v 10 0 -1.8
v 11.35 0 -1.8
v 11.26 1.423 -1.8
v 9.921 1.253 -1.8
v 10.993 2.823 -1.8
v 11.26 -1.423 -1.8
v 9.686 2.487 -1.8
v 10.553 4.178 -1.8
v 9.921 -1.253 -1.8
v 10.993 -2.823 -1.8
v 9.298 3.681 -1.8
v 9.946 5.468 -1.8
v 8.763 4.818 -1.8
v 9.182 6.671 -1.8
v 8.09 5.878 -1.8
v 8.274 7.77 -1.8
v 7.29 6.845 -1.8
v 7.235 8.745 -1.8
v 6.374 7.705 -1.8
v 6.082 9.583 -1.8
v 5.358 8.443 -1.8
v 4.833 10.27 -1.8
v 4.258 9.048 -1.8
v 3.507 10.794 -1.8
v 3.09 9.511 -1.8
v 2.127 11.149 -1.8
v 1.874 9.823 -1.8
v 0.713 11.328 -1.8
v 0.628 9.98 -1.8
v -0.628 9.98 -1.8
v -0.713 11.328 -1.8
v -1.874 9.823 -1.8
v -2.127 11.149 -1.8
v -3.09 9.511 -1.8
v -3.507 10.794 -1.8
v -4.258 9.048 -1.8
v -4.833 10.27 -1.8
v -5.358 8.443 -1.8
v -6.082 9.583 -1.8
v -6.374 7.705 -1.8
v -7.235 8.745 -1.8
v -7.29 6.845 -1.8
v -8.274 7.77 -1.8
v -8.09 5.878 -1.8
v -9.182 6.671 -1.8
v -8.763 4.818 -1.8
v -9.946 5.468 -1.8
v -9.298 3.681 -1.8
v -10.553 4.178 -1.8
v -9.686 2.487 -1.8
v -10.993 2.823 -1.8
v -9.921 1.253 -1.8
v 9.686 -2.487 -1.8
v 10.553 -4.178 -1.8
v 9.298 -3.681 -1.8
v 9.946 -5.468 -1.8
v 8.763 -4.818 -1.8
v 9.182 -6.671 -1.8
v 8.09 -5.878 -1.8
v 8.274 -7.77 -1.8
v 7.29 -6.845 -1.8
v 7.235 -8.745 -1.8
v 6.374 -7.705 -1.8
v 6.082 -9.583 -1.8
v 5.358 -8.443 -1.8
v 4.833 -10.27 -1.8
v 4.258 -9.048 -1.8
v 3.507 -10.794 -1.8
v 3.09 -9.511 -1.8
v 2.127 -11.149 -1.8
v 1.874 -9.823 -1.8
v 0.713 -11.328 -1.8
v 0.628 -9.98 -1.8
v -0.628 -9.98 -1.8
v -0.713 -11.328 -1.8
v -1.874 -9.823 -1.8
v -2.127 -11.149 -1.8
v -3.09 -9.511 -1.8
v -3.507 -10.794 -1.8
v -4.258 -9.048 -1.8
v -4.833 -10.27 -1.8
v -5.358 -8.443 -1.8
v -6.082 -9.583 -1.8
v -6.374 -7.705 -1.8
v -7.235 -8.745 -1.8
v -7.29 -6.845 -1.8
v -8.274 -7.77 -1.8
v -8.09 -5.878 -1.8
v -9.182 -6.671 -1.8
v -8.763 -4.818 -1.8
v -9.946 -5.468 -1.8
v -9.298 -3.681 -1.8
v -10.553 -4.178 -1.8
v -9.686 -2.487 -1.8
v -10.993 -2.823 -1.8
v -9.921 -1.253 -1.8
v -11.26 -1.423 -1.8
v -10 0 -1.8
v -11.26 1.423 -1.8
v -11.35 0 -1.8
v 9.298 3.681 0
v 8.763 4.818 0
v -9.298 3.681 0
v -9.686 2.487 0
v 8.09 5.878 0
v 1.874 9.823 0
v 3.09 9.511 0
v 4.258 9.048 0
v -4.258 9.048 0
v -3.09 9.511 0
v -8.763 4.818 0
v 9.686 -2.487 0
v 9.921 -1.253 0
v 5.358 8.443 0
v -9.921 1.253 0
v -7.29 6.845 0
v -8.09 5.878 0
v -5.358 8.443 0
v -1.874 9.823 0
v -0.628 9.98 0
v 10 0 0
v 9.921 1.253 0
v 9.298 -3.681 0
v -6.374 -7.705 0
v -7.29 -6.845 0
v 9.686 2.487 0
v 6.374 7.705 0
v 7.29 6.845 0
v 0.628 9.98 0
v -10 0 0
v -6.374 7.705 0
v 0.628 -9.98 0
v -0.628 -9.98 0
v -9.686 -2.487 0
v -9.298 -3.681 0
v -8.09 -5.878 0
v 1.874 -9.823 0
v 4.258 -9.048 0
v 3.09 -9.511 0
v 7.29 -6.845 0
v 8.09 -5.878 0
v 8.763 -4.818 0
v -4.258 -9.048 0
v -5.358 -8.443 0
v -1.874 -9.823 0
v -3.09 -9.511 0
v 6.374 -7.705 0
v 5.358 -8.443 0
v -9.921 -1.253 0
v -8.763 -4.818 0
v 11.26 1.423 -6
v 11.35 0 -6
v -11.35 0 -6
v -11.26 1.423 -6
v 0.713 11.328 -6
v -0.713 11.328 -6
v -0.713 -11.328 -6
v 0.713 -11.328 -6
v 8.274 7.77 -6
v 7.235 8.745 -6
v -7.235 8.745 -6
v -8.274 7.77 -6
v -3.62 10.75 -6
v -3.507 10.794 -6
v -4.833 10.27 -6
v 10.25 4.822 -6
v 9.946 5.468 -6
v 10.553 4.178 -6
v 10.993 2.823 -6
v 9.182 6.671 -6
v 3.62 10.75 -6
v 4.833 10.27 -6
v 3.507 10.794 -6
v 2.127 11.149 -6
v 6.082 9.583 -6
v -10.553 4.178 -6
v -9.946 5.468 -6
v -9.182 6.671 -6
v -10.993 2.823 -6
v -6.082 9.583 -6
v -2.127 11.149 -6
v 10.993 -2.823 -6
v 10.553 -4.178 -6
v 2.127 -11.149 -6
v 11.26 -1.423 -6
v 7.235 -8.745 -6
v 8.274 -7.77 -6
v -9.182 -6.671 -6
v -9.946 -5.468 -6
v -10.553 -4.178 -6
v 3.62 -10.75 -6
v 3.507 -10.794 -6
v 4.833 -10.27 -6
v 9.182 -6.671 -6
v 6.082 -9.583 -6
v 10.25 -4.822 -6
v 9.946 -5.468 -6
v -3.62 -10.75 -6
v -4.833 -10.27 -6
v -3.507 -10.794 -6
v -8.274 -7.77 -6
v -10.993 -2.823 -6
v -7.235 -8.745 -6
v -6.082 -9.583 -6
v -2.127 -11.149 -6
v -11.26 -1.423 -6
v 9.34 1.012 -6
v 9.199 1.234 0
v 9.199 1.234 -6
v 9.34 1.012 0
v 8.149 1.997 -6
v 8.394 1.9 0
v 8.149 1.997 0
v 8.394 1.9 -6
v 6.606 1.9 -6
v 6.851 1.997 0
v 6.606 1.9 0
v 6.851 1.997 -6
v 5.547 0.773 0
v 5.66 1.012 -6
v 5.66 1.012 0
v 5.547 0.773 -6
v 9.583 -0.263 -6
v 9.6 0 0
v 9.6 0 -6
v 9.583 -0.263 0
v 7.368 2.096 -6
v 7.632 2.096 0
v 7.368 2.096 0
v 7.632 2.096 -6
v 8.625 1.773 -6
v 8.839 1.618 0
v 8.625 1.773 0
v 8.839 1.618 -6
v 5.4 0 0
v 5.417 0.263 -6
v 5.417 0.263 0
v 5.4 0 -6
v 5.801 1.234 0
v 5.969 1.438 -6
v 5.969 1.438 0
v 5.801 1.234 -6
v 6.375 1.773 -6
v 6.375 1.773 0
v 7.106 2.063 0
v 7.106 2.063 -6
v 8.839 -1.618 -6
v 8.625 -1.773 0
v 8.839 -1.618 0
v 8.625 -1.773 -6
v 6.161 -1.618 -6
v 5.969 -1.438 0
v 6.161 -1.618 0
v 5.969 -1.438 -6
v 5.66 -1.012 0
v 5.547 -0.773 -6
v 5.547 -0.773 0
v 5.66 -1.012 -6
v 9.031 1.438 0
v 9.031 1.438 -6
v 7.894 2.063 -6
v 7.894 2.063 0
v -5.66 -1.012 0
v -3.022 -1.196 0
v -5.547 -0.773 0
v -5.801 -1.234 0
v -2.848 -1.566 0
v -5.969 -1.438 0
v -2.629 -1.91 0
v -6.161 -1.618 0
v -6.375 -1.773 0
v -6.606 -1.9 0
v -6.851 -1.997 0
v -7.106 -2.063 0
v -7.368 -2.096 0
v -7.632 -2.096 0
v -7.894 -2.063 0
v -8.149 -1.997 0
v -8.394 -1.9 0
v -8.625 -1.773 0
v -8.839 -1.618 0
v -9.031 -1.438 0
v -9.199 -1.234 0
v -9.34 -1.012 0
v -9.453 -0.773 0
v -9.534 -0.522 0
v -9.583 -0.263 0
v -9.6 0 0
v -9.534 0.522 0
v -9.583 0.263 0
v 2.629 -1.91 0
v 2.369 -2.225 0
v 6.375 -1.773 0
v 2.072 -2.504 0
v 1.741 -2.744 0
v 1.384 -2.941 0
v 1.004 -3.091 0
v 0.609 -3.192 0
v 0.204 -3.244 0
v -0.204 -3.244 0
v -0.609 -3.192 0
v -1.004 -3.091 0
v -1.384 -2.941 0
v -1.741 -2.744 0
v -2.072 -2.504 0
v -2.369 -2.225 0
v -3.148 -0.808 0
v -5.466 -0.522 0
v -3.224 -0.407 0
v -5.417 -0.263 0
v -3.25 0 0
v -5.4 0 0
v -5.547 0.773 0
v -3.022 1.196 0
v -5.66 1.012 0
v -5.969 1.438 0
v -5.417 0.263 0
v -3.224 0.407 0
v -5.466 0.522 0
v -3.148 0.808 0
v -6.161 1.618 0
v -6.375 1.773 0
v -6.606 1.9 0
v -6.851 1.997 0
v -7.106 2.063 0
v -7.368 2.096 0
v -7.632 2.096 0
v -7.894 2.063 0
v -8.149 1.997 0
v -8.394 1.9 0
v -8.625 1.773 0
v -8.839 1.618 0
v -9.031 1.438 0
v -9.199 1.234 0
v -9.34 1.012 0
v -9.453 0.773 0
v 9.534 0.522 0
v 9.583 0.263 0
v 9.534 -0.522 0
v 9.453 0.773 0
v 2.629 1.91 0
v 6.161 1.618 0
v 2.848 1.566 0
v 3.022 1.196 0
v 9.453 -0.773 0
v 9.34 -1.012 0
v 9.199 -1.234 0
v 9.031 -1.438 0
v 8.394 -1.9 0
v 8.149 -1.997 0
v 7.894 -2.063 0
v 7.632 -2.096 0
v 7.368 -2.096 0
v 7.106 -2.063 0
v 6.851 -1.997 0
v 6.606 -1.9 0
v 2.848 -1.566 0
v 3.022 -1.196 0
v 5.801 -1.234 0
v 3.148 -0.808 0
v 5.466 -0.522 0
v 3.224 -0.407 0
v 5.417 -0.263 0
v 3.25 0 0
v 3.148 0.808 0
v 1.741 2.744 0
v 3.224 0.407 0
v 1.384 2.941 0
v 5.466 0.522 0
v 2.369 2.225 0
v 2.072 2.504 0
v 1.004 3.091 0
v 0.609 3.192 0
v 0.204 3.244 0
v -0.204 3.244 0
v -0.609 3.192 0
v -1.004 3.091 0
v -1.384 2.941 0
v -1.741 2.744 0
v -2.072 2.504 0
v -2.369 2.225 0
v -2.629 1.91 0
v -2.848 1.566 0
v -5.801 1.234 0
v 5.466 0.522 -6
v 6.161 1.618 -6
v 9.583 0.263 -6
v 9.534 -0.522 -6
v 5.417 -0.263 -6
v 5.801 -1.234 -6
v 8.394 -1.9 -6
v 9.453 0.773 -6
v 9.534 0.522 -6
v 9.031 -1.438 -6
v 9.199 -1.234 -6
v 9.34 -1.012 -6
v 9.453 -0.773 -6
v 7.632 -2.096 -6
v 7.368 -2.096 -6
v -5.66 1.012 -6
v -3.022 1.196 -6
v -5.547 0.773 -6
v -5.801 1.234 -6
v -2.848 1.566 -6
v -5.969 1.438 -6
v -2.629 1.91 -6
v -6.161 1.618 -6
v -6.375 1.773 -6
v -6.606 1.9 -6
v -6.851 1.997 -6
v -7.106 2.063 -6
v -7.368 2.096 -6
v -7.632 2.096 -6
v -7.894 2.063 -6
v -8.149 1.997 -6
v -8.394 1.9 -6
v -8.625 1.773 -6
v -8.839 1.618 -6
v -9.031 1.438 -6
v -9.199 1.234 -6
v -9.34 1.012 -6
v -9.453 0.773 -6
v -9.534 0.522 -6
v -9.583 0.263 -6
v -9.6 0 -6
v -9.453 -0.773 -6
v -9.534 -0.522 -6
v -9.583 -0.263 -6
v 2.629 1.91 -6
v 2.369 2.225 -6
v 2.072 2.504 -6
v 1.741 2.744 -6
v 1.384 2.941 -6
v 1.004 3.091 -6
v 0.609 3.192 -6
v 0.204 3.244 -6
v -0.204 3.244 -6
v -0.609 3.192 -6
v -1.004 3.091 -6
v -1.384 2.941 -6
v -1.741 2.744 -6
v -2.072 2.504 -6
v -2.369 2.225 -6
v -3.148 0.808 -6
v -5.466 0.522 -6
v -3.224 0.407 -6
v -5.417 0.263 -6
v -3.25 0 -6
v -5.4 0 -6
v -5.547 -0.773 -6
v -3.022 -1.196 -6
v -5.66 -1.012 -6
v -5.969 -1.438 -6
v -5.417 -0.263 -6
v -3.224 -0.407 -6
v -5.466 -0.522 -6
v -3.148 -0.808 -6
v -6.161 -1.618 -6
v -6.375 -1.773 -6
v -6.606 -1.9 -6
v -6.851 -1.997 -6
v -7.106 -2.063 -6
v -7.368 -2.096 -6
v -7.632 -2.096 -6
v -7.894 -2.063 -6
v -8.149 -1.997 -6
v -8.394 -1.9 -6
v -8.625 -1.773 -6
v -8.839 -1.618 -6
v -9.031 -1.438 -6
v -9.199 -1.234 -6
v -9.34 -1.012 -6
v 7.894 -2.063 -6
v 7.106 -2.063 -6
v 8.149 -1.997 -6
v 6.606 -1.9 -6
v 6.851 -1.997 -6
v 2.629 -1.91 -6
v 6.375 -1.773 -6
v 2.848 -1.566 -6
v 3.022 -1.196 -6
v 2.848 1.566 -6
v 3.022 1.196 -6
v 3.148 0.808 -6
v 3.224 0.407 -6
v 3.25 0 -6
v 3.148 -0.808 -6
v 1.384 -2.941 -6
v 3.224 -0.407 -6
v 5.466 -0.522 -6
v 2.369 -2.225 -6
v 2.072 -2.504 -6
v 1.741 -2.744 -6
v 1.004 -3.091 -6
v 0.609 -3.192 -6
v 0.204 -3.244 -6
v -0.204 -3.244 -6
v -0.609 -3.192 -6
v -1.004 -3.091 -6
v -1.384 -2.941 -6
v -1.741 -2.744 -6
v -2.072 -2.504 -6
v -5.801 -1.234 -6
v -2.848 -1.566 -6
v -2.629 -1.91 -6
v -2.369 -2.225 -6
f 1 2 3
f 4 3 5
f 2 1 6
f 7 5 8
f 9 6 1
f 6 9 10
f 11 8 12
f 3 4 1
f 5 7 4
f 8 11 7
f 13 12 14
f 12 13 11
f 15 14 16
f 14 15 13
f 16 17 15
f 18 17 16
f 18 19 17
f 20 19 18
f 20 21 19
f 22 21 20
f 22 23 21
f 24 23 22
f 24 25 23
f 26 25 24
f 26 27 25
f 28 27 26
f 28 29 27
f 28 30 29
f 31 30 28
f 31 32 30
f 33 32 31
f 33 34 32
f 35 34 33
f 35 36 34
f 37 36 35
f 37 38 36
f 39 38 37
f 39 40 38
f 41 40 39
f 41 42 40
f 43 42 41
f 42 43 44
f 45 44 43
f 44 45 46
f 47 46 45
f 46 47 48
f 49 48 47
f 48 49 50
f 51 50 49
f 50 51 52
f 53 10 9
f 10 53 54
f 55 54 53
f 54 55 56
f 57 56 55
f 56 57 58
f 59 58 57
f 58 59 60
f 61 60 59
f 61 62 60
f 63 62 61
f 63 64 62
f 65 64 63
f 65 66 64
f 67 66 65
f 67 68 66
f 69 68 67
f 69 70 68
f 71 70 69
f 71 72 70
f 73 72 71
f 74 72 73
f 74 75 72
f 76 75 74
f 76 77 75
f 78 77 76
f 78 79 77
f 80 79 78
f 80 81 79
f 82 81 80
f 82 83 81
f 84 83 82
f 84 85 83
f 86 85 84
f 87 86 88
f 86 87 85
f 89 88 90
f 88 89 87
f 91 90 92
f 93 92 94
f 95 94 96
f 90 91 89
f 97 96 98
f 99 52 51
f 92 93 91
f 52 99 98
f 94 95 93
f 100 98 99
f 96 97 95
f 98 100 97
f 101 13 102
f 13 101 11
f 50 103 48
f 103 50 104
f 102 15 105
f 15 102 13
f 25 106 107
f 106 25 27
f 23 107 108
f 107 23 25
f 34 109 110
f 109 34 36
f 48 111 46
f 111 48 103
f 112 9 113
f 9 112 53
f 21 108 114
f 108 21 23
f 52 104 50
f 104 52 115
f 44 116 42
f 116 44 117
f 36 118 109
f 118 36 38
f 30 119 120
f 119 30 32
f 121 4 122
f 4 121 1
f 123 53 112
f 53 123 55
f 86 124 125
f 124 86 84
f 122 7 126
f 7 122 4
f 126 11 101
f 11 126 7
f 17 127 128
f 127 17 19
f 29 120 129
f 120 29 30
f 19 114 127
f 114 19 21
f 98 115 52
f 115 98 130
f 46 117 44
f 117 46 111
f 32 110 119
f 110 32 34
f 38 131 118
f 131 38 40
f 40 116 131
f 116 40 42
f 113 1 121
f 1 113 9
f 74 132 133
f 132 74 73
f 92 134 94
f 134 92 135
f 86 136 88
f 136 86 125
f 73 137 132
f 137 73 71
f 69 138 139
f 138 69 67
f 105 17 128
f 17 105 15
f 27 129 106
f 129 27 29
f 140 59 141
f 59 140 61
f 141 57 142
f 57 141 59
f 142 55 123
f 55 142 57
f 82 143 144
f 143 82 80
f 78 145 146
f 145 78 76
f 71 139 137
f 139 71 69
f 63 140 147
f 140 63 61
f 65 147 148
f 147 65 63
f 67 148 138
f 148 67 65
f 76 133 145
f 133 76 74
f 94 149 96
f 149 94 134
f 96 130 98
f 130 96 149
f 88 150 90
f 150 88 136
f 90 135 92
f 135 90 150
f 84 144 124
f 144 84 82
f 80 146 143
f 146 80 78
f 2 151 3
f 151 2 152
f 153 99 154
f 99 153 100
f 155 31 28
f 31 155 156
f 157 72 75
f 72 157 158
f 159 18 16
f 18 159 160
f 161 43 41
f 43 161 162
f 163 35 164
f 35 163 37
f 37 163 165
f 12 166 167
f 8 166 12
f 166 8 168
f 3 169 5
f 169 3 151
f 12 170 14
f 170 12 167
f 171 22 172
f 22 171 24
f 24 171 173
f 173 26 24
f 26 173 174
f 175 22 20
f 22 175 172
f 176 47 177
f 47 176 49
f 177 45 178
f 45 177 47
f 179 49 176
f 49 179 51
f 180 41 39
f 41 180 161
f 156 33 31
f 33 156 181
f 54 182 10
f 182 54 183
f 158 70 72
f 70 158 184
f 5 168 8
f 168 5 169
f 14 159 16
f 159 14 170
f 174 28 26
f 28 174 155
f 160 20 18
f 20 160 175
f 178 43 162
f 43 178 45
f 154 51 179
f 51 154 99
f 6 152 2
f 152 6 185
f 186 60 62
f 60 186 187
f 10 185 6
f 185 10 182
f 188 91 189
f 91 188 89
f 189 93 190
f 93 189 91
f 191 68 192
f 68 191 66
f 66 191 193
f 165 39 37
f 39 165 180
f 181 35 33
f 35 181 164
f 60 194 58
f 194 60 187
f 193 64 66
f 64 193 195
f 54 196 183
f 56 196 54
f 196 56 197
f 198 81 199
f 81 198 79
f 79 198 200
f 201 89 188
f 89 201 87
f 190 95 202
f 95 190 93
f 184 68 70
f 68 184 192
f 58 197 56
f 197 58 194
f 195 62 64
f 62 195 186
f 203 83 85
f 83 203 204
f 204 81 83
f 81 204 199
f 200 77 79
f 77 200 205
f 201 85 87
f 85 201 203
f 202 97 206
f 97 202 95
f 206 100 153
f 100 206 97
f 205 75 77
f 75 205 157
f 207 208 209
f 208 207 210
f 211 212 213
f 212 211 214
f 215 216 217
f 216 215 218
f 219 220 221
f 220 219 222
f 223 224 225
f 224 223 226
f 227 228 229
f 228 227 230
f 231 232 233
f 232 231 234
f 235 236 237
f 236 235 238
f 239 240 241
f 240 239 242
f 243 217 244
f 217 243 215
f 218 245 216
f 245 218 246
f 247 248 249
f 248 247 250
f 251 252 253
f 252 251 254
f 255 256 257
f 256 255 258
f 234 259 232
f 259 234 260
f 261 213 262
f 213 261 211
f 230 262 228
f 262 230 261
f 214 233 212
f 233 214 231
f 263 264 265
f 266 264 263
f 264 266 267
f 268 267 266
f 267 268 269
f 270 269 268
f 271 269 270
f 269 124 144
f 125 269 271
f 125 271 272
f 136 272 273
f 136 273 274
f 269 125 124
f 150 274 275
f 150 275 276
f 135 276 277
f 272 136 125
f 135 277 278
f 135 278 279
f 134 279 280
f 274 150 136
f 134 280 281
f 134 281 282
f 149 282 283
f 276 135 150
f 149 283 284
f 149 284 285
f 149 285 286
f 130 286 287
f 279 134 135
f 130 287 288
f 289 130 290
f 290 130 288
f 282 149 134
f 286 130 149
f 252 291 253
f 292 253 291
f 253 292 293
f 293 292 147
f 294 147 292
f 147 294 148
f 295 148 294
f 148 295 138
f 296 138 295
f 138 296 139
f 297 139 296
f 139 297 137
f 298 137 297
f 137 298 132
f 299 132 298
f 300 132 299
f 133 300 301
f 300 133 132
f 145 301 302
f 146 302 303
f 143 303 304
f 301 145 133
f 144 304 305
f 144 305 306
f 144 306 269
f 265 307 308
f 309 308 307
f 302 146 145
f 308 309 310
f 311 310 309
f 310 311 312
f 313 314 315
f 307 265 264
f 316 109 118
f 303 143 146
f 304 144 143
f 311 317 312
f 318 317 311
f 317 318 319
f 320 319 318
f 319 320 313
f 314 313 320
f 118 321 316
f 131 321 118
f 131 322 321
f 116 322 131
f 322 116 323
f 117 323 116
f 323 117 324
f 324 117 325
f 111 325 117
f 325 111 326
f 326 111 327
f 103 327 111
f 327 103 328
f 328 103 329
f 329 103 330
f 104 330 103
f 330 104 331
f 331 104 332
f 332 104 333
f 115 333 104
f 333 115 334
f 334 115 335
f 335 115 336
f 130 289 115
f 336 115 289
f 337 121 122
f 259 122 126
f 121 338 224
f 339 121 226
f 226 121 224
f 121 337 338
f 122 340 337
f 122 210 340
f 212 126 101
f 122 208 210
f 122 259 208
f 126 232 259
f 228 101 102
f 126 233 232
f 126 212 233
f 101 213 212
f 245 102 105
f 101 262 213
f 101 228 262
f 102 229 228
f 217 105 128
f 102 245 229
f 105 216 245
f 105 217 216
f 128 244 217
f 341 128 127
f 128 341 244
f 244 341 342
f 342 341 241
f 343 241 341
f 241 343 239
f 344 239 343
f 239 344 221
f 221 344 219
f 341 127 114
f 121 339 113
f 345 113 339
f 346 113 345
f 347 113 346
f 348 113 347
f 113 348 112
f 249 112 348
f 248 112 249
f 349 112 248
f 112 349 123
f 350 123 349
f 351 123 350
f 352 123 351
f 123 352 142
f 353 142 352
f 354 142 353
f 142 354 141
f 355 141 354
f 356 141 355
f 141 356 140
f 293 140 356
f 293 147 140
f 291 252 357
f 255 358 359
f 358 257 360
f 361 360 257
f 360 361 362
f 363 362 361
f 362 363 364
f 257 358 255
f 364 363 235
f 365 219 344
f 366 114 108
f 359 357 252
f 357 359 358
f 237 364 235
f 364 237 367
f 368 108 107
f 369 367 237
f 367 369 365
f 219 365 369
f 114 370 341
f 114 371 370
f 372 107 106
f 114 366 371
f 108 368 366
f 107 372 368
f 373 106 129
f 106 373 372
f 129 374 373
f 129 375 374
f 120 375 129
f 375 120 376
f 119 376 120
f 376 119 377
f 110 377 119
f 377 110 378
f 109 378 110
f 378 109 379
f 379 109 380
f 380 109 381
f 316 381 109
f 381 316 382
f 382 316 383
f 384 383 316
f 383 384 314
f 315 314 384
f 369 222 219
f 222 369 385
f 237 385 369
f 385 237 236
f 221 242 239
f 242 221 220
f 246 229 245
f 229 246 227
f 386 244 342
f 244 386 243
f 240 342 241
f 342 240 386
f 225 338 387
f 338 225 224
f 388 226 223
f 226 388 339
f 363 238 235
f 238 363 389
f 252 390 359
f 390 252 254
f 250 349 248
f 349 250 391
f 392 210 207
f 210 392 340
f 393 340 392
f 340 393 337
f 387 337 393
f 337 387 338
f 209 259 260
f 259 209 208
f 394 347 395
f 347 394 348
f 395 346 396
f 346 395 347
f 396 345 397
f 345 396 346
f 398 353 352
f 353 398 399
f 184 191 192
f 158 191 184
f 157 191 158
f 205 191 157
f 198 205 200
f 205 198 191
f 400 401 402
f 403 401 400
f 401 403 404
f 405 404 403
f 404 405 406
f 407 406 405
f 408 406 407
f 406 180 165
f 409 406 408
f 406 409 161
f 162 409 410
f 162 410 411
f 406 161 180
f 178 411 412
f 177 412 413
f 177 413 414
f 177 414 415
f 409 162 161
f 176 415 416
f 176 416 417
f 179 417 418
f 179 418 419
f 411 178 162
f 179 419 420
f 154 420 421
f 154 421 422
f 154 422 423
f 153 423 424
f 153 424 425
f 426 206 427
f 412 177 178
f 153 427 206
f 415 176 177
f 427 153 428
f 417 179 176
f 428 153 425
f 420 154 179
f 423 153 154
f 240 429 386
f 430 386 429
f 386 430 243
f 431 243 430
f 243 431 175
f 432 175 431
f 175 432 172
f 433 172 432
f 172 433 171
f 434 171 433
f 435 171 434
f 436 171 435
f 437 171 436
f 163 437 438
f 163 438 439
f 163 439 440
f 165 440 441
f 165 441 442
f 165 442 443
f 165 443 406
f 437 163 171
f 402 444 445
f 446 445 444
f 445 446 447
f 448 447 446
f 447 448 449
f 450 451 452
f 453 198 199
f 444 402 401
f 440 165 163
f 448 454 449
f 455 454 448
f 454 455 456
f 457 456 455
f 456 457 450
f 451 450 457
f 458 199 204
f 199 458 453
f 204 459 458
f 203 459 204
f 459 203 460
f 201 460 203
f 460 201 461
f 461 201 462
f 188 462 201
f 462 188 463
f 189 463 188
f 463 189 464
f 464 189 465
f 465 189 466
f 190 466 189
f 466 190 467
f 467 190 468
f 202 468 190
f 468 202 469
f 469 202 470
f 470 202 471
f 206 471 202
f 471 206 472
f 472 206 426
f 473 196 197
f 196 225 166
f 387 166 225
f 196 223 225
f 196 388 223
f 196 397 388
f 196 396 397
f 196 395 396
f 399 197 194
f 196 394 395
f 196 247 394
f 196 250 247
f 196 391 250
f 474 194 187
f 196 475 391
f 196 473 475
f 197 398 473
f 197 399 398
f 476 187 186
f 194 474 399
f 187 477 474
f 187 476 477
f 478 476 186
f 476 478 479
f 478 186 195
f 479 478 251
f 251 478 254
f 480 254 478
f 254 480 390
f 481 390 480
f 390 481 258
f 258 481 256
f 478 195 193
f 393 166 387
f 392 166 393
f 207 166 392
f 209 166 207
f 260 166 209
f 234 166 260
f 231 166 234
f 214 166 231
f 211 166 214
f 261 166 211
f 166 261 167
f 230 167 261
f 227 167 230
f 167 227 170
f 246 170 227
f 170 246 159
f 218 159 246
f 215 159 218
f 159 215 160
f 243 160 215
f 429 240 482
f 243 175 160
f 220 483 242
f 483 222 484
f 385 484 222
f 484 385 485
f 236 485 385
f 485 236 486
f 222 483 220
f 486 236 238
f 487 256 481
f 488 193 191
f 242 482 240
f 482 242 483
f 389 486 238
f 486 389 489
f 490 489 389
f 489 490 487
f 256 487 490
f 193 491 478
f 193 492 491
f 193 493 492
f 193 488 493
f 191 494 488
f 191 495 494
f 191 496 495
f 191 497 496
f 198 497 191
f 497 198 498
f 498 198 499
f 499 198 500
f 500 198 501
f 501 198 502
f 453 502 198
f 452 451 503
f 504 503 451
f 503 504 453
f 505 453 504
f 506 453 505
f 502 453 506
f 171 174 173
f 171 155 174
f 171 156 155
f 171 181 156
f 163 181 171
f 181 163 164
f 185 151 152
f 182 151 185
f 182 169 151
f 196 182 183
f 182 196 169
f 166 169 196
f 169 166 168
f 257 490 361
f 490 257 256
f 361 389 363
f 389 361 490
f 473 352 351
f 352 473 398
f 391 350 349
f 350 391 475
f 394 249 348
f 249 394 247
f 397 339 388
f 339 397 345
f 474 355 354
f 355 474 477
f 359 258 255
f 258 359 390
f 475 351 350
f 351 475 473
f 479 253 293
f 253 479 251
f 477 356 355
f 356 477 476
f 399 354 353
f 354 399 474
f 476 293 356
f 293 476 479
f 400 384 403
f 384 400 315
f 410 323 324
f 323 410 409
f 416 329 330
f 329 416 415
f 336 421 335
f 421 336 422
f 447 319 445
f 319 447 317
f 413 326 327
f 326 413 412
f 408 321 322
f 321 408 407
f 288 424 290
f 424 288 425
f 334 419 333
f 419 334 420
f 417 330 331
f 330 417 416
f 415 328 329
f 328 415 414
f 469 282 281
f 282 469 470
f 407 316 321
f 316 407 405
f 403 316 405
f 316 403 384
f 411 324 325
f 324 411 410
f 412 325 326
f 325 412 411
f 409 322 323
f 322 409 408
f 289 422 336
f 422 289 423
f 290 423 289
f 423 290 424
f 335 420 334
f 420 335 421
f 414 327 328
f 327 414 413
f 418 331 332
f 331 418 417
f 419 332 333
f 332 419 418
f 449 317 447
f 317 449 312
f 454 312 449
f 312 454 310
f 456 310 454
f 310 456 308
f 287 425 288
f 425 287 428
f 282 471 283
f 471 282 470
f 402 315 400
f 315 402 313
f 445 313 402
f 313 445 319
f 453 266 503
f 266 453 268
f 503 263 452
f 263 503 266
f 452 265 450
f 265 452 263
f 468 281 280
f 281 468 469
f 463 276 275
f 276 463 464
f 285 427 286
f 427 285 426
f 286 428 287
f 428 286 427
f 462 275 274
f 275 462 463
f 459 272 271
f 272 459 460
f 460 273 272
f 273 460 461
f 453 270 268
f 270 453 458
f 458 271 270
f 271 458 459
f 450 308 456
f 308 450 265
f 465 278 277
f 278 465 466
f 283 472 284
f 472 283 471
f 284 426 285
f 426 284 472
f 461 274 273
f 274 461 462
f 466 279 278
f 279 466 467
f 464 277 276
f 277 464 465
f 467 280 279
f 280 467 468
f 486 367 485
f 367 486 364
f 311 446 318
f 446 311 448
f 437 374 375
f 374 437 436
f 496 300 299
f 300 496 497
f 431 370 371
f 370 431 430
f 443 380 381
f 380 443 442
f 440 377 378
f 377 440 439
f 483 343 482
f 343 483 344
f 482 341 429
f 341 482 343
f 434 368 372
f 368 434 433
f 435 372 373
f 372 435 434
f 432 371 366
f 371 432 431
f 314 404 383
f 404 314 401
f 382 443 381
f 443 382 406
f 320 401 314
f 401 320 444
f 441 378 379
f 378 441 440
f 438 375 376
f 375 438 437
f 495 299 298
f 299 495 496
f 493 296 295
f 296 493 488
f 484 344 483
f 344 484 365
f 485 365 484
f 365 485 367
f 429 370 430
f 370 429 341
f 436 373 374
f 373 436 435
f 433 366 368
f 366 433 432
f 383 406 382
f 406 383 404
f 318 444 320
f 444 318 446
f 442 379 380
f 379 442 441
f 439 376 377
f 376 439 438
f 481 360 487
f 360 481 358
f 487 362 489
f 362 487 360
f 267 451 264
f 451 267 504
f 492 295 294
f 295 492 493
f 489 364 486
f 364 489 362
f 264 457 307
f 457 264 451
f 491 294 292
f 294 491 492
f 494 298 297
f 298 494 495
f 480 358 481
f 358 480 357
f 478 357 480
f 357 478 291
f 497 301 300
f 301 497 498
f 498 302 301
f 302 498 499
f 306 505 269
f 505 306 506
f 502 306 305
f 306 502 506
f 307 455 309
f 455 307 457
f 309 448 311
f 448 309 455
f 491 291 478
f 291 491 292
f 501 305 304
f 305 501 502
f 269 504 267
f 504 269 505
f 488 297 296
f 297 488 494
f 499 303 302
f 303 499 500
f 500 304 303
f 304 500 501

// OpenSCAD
$fn = 50;


difference() {
	union() {
		translate(v = [0, 0, -6.0000000000]) {
			rotate(a = [0, 0, 0]) {
				cylinder(h = 12, r = 12.0000000000);
			}
		}
	}
	union() {
		translate(v = [0, 0, 0]) {
			rotate(a = [0, 0, 0]) {
				translate(v = [0, 0, -1.8000000000]) {
					union() {
						difference() {
							translate(v = [0, 0, 0]) {
								rotate(a = [0, 0, 0]) {
									cylinder(h = 3.6000000000, r = 13.7000000000);
								}
							}
							translate(v = [0, 0, 0]) {
								rotate(a = [0, 0, 0]) {
									cylinder(h = 3.6000000000, r = 10.0000000000);
								}
							}
						}
						difference() {
							translate(v = [0, 0, -50]) {
								rotate(a = [0, 0, 0]) {
									cylinder(h = 100, r = 12.3500000000);
								}
							}
							translate(v = [0, 0, -50]) {
								rotate(a = [0, 0, 0]) {
									cylinder(h = 100, r = 11.3500000000);
								}
							}
						}
					}
				}
			}
		}
		translate(v = [7.5000000000, 0, -6.0000000000]) {
			rotate(a = [0, 0, 0]) {
				cylinder(h = 6, r = 2.1000000000);
			}
		}
		translate(v = [7.5000000000, 0, -125.0000000000]) {
			rotate(a = [0, 0, 0]) {
				cylinder(h = 250, r = 1.8000000000);
			}
		}
		translate(v = [7.5000000000, 0, -6.0000000000]) {
			rotate(a = [0, 0, 0]) {
				cylinder(h = 6, r = 2.1000000000);
			}
		}
		translate(v = [7.5000000000, 0, -125.0000000000]) {
			rotate(a = [0, 0, 0]) {
				cylinder(h = 250, r = 1.8000000000);
			}
		}
		translate(v = [7.5000000000, 0, -6.0000000000]) {
			rotate(a = [0, 0, 0]) {
				cylinder(h = 6, r = 2.1000000000);
			}
		}
		translate(v = [7.5000000000, 0, -125.0000000000]) {
			rotate(a = [0, 0, 0]) {
				cylinder(h = 250, r = 1.8000000000);
			}
		}
		translate(v = [-7.5000000000, 0, -6.0000000000]) {
			rotate(a = [0, 0, 0]) {
				cylinder(h = 6, r = 2.1000000000);
			}
		}
		translate(v = [-7.5000000000, 0, -125.0000000000]) {
			rotate(a = [0, 0, 0]) {
				cylinder(h = 250, r = 1.8000000000);
			}
		}
		translate(v = [-7.5000000000, 0, -6.0000000000]) {
			rotate(a = [0, 0, 0]) {
				cylinder(h = 6, r = 2.1000000000);
			}
		}
		translate(v = [-7.5000000000, 0, -125.0000000000]) {
			rotate(a = [0, 0, 0]) {
				cylinder(h = 250, r = 1.8000000000);
			}
		}
		translate(v = [-7.5000000000, 0, -6.0000000000]) {
			rotate(a = [0, 0, 0]) {
				cylinder(h = 6, r = 2.1000000000);
			}
		}
		translate(v = [-7.5000000000, 0, -125.0000000000]) {
			rotate(a = [0, 0, 0]) {
				cylinder(h = 250, r = 1.8000000000);
			}
		}
		translate(v = [-15.0000000000, -15.0000000000, -125.0000000000]) {
			rotate(a = [0, 0, 0]) {
				cylinder(h = 250, r = 3.2500000000);
			}
		}
		translate(v = [-15.0000000000, 15.0000000000, -125.0000000000]) {
			rotate(a = [0, 0, 0]) {
				cylinder(h = 250, r = 3.2500000000);
			}
		}
		translate(v = [15.0000000000, -15.0000000000, -125.0000000000]) {
			rotate(a = [0, 0, 0]) {
				cylinder(h = 250, r = 3.2500000000);
			}
		}
		translate(v = [15.0000000000, 15.0000000000, -125.0000000000]) {
			rotate(a = [0, 0, 0]) {
				cylinder(h = 250, r = 3.2500000000);
			}
		}
		translate(v = [0, 0, -131.0000000000]) {
			rotate(a = [0, 0, 0]) {
				cylinder(h = 250, r = 3.2500000000);
			}
		}
		translate(v = [14.2500000000, 4.7500000000, -131.0000000000]) {
			rotate(a = [0, 0, 0]) {
				cylinder(h = 250, r = 1.8000000000);
			}
		}
		translate(v = [14.2500000000, 4.7500000000, -10.0000000000]) {
			rotate(a = [0, 0, 0]) {
				cylinder(h = 253.2000000000, r = 3.0000000000);
			}
		}
		translate(v = [14.2500000000, 4.7500000000, -35.0000000000]) {
			rotate(a = [0, 0, 0]) {
				cylinder(h = 25, r = 1.8000000000);
			}
		}
		translate(v = [14.2500000000, -4.7500000000, -131.0000000000]) {
			rotate(a = [0, 0, 0]) {
				cylinder(h = 250, r = 1.8000000000);
			}
		}
		translate(v = [14.2500000000, -4.7500000000, -10.0000000000]) {
			rotate(a = [0, 0, 0]) {
				cylinder(h = 253.2000000000, r = 3.0000000000);
			}
		}
		translate(v = [14.2500000000, -4.7500000000, -35.0000000000]) {
			rotate(a = [0, 0, 0]) {
				cylinder(h = 25, r = 1.8000000000);
			}
		}
		translate(v = [-36.2500000000, 4.7500000000, -131.0000000000]) {
			rotate(a = [0, 0, 0]) {
				cylinder(h = 250, r = 1.8000000000);
			}
		}
		translate(v = [-36.2500000000, 4.7500000000, -10.0000000000]) {
			rotate(a = [0, 0, 0]) {
				cylinder(h = 253.2000000000, r = 3.0000000000);
			}
		}
		translate(v = [-36.2500000000, 4.7500000000, -35.0000000000]) {
			rotate(a = [0, 0, 0]) {
				cylinder(h = 25, r = 1.8000000000);
			}
		}
		translate(v = [-36.2500000000, -4.7500000000, -131.0000000000]) {
			rotate(a = [0, 0, 0]) {
				cylinder(h = 250, r = 1.8000000000);
			}
		}
		translate(v = [-36.2500000000, -4.7500000000, -10.0000000000]) {
			rotate(a = [0, 0, 0]) {
				cylinder(h = 253.2000000000, r = 3.0000000000);
			}
		}
		translate(v = [-36.2500000000, -4.7500000000, -35.0000000000]) {
			rotate(a = [0, 0, 0]) {
				cylinder(h = 25, r = 1.8000000000);
			}
		}
		translate(v = [-32.2500000000, -10.7500000000, -46.0000000000]) {
			rotate(a = [0, 0, 0]) {
				cube(size = [42.5000000000, 21.5000000000, 40]);
			}
		}
		translate(v = [-36.2500000000, -1.7500000000, -14.5000000000]) {
			rotate(a = [0, 0, 0]) {
				cube(size = [50.5000000000, 3.5000000000, 3]);
			}
		}
		translate(v = [-41.7500000000, -10.7500000000, -17.0000000000]) {
			rotate(a = [0, 0, 0]) {
				cube(size = [61.5000000000, 21.5000000000, 2.5000000000]);
			}
		}
		translate(v = [-250, -250, 0]) {
			rotate(a = [0, 0, 0]) {
				cube(size = [500, 500, 500]);
			}
		}
	}
}
